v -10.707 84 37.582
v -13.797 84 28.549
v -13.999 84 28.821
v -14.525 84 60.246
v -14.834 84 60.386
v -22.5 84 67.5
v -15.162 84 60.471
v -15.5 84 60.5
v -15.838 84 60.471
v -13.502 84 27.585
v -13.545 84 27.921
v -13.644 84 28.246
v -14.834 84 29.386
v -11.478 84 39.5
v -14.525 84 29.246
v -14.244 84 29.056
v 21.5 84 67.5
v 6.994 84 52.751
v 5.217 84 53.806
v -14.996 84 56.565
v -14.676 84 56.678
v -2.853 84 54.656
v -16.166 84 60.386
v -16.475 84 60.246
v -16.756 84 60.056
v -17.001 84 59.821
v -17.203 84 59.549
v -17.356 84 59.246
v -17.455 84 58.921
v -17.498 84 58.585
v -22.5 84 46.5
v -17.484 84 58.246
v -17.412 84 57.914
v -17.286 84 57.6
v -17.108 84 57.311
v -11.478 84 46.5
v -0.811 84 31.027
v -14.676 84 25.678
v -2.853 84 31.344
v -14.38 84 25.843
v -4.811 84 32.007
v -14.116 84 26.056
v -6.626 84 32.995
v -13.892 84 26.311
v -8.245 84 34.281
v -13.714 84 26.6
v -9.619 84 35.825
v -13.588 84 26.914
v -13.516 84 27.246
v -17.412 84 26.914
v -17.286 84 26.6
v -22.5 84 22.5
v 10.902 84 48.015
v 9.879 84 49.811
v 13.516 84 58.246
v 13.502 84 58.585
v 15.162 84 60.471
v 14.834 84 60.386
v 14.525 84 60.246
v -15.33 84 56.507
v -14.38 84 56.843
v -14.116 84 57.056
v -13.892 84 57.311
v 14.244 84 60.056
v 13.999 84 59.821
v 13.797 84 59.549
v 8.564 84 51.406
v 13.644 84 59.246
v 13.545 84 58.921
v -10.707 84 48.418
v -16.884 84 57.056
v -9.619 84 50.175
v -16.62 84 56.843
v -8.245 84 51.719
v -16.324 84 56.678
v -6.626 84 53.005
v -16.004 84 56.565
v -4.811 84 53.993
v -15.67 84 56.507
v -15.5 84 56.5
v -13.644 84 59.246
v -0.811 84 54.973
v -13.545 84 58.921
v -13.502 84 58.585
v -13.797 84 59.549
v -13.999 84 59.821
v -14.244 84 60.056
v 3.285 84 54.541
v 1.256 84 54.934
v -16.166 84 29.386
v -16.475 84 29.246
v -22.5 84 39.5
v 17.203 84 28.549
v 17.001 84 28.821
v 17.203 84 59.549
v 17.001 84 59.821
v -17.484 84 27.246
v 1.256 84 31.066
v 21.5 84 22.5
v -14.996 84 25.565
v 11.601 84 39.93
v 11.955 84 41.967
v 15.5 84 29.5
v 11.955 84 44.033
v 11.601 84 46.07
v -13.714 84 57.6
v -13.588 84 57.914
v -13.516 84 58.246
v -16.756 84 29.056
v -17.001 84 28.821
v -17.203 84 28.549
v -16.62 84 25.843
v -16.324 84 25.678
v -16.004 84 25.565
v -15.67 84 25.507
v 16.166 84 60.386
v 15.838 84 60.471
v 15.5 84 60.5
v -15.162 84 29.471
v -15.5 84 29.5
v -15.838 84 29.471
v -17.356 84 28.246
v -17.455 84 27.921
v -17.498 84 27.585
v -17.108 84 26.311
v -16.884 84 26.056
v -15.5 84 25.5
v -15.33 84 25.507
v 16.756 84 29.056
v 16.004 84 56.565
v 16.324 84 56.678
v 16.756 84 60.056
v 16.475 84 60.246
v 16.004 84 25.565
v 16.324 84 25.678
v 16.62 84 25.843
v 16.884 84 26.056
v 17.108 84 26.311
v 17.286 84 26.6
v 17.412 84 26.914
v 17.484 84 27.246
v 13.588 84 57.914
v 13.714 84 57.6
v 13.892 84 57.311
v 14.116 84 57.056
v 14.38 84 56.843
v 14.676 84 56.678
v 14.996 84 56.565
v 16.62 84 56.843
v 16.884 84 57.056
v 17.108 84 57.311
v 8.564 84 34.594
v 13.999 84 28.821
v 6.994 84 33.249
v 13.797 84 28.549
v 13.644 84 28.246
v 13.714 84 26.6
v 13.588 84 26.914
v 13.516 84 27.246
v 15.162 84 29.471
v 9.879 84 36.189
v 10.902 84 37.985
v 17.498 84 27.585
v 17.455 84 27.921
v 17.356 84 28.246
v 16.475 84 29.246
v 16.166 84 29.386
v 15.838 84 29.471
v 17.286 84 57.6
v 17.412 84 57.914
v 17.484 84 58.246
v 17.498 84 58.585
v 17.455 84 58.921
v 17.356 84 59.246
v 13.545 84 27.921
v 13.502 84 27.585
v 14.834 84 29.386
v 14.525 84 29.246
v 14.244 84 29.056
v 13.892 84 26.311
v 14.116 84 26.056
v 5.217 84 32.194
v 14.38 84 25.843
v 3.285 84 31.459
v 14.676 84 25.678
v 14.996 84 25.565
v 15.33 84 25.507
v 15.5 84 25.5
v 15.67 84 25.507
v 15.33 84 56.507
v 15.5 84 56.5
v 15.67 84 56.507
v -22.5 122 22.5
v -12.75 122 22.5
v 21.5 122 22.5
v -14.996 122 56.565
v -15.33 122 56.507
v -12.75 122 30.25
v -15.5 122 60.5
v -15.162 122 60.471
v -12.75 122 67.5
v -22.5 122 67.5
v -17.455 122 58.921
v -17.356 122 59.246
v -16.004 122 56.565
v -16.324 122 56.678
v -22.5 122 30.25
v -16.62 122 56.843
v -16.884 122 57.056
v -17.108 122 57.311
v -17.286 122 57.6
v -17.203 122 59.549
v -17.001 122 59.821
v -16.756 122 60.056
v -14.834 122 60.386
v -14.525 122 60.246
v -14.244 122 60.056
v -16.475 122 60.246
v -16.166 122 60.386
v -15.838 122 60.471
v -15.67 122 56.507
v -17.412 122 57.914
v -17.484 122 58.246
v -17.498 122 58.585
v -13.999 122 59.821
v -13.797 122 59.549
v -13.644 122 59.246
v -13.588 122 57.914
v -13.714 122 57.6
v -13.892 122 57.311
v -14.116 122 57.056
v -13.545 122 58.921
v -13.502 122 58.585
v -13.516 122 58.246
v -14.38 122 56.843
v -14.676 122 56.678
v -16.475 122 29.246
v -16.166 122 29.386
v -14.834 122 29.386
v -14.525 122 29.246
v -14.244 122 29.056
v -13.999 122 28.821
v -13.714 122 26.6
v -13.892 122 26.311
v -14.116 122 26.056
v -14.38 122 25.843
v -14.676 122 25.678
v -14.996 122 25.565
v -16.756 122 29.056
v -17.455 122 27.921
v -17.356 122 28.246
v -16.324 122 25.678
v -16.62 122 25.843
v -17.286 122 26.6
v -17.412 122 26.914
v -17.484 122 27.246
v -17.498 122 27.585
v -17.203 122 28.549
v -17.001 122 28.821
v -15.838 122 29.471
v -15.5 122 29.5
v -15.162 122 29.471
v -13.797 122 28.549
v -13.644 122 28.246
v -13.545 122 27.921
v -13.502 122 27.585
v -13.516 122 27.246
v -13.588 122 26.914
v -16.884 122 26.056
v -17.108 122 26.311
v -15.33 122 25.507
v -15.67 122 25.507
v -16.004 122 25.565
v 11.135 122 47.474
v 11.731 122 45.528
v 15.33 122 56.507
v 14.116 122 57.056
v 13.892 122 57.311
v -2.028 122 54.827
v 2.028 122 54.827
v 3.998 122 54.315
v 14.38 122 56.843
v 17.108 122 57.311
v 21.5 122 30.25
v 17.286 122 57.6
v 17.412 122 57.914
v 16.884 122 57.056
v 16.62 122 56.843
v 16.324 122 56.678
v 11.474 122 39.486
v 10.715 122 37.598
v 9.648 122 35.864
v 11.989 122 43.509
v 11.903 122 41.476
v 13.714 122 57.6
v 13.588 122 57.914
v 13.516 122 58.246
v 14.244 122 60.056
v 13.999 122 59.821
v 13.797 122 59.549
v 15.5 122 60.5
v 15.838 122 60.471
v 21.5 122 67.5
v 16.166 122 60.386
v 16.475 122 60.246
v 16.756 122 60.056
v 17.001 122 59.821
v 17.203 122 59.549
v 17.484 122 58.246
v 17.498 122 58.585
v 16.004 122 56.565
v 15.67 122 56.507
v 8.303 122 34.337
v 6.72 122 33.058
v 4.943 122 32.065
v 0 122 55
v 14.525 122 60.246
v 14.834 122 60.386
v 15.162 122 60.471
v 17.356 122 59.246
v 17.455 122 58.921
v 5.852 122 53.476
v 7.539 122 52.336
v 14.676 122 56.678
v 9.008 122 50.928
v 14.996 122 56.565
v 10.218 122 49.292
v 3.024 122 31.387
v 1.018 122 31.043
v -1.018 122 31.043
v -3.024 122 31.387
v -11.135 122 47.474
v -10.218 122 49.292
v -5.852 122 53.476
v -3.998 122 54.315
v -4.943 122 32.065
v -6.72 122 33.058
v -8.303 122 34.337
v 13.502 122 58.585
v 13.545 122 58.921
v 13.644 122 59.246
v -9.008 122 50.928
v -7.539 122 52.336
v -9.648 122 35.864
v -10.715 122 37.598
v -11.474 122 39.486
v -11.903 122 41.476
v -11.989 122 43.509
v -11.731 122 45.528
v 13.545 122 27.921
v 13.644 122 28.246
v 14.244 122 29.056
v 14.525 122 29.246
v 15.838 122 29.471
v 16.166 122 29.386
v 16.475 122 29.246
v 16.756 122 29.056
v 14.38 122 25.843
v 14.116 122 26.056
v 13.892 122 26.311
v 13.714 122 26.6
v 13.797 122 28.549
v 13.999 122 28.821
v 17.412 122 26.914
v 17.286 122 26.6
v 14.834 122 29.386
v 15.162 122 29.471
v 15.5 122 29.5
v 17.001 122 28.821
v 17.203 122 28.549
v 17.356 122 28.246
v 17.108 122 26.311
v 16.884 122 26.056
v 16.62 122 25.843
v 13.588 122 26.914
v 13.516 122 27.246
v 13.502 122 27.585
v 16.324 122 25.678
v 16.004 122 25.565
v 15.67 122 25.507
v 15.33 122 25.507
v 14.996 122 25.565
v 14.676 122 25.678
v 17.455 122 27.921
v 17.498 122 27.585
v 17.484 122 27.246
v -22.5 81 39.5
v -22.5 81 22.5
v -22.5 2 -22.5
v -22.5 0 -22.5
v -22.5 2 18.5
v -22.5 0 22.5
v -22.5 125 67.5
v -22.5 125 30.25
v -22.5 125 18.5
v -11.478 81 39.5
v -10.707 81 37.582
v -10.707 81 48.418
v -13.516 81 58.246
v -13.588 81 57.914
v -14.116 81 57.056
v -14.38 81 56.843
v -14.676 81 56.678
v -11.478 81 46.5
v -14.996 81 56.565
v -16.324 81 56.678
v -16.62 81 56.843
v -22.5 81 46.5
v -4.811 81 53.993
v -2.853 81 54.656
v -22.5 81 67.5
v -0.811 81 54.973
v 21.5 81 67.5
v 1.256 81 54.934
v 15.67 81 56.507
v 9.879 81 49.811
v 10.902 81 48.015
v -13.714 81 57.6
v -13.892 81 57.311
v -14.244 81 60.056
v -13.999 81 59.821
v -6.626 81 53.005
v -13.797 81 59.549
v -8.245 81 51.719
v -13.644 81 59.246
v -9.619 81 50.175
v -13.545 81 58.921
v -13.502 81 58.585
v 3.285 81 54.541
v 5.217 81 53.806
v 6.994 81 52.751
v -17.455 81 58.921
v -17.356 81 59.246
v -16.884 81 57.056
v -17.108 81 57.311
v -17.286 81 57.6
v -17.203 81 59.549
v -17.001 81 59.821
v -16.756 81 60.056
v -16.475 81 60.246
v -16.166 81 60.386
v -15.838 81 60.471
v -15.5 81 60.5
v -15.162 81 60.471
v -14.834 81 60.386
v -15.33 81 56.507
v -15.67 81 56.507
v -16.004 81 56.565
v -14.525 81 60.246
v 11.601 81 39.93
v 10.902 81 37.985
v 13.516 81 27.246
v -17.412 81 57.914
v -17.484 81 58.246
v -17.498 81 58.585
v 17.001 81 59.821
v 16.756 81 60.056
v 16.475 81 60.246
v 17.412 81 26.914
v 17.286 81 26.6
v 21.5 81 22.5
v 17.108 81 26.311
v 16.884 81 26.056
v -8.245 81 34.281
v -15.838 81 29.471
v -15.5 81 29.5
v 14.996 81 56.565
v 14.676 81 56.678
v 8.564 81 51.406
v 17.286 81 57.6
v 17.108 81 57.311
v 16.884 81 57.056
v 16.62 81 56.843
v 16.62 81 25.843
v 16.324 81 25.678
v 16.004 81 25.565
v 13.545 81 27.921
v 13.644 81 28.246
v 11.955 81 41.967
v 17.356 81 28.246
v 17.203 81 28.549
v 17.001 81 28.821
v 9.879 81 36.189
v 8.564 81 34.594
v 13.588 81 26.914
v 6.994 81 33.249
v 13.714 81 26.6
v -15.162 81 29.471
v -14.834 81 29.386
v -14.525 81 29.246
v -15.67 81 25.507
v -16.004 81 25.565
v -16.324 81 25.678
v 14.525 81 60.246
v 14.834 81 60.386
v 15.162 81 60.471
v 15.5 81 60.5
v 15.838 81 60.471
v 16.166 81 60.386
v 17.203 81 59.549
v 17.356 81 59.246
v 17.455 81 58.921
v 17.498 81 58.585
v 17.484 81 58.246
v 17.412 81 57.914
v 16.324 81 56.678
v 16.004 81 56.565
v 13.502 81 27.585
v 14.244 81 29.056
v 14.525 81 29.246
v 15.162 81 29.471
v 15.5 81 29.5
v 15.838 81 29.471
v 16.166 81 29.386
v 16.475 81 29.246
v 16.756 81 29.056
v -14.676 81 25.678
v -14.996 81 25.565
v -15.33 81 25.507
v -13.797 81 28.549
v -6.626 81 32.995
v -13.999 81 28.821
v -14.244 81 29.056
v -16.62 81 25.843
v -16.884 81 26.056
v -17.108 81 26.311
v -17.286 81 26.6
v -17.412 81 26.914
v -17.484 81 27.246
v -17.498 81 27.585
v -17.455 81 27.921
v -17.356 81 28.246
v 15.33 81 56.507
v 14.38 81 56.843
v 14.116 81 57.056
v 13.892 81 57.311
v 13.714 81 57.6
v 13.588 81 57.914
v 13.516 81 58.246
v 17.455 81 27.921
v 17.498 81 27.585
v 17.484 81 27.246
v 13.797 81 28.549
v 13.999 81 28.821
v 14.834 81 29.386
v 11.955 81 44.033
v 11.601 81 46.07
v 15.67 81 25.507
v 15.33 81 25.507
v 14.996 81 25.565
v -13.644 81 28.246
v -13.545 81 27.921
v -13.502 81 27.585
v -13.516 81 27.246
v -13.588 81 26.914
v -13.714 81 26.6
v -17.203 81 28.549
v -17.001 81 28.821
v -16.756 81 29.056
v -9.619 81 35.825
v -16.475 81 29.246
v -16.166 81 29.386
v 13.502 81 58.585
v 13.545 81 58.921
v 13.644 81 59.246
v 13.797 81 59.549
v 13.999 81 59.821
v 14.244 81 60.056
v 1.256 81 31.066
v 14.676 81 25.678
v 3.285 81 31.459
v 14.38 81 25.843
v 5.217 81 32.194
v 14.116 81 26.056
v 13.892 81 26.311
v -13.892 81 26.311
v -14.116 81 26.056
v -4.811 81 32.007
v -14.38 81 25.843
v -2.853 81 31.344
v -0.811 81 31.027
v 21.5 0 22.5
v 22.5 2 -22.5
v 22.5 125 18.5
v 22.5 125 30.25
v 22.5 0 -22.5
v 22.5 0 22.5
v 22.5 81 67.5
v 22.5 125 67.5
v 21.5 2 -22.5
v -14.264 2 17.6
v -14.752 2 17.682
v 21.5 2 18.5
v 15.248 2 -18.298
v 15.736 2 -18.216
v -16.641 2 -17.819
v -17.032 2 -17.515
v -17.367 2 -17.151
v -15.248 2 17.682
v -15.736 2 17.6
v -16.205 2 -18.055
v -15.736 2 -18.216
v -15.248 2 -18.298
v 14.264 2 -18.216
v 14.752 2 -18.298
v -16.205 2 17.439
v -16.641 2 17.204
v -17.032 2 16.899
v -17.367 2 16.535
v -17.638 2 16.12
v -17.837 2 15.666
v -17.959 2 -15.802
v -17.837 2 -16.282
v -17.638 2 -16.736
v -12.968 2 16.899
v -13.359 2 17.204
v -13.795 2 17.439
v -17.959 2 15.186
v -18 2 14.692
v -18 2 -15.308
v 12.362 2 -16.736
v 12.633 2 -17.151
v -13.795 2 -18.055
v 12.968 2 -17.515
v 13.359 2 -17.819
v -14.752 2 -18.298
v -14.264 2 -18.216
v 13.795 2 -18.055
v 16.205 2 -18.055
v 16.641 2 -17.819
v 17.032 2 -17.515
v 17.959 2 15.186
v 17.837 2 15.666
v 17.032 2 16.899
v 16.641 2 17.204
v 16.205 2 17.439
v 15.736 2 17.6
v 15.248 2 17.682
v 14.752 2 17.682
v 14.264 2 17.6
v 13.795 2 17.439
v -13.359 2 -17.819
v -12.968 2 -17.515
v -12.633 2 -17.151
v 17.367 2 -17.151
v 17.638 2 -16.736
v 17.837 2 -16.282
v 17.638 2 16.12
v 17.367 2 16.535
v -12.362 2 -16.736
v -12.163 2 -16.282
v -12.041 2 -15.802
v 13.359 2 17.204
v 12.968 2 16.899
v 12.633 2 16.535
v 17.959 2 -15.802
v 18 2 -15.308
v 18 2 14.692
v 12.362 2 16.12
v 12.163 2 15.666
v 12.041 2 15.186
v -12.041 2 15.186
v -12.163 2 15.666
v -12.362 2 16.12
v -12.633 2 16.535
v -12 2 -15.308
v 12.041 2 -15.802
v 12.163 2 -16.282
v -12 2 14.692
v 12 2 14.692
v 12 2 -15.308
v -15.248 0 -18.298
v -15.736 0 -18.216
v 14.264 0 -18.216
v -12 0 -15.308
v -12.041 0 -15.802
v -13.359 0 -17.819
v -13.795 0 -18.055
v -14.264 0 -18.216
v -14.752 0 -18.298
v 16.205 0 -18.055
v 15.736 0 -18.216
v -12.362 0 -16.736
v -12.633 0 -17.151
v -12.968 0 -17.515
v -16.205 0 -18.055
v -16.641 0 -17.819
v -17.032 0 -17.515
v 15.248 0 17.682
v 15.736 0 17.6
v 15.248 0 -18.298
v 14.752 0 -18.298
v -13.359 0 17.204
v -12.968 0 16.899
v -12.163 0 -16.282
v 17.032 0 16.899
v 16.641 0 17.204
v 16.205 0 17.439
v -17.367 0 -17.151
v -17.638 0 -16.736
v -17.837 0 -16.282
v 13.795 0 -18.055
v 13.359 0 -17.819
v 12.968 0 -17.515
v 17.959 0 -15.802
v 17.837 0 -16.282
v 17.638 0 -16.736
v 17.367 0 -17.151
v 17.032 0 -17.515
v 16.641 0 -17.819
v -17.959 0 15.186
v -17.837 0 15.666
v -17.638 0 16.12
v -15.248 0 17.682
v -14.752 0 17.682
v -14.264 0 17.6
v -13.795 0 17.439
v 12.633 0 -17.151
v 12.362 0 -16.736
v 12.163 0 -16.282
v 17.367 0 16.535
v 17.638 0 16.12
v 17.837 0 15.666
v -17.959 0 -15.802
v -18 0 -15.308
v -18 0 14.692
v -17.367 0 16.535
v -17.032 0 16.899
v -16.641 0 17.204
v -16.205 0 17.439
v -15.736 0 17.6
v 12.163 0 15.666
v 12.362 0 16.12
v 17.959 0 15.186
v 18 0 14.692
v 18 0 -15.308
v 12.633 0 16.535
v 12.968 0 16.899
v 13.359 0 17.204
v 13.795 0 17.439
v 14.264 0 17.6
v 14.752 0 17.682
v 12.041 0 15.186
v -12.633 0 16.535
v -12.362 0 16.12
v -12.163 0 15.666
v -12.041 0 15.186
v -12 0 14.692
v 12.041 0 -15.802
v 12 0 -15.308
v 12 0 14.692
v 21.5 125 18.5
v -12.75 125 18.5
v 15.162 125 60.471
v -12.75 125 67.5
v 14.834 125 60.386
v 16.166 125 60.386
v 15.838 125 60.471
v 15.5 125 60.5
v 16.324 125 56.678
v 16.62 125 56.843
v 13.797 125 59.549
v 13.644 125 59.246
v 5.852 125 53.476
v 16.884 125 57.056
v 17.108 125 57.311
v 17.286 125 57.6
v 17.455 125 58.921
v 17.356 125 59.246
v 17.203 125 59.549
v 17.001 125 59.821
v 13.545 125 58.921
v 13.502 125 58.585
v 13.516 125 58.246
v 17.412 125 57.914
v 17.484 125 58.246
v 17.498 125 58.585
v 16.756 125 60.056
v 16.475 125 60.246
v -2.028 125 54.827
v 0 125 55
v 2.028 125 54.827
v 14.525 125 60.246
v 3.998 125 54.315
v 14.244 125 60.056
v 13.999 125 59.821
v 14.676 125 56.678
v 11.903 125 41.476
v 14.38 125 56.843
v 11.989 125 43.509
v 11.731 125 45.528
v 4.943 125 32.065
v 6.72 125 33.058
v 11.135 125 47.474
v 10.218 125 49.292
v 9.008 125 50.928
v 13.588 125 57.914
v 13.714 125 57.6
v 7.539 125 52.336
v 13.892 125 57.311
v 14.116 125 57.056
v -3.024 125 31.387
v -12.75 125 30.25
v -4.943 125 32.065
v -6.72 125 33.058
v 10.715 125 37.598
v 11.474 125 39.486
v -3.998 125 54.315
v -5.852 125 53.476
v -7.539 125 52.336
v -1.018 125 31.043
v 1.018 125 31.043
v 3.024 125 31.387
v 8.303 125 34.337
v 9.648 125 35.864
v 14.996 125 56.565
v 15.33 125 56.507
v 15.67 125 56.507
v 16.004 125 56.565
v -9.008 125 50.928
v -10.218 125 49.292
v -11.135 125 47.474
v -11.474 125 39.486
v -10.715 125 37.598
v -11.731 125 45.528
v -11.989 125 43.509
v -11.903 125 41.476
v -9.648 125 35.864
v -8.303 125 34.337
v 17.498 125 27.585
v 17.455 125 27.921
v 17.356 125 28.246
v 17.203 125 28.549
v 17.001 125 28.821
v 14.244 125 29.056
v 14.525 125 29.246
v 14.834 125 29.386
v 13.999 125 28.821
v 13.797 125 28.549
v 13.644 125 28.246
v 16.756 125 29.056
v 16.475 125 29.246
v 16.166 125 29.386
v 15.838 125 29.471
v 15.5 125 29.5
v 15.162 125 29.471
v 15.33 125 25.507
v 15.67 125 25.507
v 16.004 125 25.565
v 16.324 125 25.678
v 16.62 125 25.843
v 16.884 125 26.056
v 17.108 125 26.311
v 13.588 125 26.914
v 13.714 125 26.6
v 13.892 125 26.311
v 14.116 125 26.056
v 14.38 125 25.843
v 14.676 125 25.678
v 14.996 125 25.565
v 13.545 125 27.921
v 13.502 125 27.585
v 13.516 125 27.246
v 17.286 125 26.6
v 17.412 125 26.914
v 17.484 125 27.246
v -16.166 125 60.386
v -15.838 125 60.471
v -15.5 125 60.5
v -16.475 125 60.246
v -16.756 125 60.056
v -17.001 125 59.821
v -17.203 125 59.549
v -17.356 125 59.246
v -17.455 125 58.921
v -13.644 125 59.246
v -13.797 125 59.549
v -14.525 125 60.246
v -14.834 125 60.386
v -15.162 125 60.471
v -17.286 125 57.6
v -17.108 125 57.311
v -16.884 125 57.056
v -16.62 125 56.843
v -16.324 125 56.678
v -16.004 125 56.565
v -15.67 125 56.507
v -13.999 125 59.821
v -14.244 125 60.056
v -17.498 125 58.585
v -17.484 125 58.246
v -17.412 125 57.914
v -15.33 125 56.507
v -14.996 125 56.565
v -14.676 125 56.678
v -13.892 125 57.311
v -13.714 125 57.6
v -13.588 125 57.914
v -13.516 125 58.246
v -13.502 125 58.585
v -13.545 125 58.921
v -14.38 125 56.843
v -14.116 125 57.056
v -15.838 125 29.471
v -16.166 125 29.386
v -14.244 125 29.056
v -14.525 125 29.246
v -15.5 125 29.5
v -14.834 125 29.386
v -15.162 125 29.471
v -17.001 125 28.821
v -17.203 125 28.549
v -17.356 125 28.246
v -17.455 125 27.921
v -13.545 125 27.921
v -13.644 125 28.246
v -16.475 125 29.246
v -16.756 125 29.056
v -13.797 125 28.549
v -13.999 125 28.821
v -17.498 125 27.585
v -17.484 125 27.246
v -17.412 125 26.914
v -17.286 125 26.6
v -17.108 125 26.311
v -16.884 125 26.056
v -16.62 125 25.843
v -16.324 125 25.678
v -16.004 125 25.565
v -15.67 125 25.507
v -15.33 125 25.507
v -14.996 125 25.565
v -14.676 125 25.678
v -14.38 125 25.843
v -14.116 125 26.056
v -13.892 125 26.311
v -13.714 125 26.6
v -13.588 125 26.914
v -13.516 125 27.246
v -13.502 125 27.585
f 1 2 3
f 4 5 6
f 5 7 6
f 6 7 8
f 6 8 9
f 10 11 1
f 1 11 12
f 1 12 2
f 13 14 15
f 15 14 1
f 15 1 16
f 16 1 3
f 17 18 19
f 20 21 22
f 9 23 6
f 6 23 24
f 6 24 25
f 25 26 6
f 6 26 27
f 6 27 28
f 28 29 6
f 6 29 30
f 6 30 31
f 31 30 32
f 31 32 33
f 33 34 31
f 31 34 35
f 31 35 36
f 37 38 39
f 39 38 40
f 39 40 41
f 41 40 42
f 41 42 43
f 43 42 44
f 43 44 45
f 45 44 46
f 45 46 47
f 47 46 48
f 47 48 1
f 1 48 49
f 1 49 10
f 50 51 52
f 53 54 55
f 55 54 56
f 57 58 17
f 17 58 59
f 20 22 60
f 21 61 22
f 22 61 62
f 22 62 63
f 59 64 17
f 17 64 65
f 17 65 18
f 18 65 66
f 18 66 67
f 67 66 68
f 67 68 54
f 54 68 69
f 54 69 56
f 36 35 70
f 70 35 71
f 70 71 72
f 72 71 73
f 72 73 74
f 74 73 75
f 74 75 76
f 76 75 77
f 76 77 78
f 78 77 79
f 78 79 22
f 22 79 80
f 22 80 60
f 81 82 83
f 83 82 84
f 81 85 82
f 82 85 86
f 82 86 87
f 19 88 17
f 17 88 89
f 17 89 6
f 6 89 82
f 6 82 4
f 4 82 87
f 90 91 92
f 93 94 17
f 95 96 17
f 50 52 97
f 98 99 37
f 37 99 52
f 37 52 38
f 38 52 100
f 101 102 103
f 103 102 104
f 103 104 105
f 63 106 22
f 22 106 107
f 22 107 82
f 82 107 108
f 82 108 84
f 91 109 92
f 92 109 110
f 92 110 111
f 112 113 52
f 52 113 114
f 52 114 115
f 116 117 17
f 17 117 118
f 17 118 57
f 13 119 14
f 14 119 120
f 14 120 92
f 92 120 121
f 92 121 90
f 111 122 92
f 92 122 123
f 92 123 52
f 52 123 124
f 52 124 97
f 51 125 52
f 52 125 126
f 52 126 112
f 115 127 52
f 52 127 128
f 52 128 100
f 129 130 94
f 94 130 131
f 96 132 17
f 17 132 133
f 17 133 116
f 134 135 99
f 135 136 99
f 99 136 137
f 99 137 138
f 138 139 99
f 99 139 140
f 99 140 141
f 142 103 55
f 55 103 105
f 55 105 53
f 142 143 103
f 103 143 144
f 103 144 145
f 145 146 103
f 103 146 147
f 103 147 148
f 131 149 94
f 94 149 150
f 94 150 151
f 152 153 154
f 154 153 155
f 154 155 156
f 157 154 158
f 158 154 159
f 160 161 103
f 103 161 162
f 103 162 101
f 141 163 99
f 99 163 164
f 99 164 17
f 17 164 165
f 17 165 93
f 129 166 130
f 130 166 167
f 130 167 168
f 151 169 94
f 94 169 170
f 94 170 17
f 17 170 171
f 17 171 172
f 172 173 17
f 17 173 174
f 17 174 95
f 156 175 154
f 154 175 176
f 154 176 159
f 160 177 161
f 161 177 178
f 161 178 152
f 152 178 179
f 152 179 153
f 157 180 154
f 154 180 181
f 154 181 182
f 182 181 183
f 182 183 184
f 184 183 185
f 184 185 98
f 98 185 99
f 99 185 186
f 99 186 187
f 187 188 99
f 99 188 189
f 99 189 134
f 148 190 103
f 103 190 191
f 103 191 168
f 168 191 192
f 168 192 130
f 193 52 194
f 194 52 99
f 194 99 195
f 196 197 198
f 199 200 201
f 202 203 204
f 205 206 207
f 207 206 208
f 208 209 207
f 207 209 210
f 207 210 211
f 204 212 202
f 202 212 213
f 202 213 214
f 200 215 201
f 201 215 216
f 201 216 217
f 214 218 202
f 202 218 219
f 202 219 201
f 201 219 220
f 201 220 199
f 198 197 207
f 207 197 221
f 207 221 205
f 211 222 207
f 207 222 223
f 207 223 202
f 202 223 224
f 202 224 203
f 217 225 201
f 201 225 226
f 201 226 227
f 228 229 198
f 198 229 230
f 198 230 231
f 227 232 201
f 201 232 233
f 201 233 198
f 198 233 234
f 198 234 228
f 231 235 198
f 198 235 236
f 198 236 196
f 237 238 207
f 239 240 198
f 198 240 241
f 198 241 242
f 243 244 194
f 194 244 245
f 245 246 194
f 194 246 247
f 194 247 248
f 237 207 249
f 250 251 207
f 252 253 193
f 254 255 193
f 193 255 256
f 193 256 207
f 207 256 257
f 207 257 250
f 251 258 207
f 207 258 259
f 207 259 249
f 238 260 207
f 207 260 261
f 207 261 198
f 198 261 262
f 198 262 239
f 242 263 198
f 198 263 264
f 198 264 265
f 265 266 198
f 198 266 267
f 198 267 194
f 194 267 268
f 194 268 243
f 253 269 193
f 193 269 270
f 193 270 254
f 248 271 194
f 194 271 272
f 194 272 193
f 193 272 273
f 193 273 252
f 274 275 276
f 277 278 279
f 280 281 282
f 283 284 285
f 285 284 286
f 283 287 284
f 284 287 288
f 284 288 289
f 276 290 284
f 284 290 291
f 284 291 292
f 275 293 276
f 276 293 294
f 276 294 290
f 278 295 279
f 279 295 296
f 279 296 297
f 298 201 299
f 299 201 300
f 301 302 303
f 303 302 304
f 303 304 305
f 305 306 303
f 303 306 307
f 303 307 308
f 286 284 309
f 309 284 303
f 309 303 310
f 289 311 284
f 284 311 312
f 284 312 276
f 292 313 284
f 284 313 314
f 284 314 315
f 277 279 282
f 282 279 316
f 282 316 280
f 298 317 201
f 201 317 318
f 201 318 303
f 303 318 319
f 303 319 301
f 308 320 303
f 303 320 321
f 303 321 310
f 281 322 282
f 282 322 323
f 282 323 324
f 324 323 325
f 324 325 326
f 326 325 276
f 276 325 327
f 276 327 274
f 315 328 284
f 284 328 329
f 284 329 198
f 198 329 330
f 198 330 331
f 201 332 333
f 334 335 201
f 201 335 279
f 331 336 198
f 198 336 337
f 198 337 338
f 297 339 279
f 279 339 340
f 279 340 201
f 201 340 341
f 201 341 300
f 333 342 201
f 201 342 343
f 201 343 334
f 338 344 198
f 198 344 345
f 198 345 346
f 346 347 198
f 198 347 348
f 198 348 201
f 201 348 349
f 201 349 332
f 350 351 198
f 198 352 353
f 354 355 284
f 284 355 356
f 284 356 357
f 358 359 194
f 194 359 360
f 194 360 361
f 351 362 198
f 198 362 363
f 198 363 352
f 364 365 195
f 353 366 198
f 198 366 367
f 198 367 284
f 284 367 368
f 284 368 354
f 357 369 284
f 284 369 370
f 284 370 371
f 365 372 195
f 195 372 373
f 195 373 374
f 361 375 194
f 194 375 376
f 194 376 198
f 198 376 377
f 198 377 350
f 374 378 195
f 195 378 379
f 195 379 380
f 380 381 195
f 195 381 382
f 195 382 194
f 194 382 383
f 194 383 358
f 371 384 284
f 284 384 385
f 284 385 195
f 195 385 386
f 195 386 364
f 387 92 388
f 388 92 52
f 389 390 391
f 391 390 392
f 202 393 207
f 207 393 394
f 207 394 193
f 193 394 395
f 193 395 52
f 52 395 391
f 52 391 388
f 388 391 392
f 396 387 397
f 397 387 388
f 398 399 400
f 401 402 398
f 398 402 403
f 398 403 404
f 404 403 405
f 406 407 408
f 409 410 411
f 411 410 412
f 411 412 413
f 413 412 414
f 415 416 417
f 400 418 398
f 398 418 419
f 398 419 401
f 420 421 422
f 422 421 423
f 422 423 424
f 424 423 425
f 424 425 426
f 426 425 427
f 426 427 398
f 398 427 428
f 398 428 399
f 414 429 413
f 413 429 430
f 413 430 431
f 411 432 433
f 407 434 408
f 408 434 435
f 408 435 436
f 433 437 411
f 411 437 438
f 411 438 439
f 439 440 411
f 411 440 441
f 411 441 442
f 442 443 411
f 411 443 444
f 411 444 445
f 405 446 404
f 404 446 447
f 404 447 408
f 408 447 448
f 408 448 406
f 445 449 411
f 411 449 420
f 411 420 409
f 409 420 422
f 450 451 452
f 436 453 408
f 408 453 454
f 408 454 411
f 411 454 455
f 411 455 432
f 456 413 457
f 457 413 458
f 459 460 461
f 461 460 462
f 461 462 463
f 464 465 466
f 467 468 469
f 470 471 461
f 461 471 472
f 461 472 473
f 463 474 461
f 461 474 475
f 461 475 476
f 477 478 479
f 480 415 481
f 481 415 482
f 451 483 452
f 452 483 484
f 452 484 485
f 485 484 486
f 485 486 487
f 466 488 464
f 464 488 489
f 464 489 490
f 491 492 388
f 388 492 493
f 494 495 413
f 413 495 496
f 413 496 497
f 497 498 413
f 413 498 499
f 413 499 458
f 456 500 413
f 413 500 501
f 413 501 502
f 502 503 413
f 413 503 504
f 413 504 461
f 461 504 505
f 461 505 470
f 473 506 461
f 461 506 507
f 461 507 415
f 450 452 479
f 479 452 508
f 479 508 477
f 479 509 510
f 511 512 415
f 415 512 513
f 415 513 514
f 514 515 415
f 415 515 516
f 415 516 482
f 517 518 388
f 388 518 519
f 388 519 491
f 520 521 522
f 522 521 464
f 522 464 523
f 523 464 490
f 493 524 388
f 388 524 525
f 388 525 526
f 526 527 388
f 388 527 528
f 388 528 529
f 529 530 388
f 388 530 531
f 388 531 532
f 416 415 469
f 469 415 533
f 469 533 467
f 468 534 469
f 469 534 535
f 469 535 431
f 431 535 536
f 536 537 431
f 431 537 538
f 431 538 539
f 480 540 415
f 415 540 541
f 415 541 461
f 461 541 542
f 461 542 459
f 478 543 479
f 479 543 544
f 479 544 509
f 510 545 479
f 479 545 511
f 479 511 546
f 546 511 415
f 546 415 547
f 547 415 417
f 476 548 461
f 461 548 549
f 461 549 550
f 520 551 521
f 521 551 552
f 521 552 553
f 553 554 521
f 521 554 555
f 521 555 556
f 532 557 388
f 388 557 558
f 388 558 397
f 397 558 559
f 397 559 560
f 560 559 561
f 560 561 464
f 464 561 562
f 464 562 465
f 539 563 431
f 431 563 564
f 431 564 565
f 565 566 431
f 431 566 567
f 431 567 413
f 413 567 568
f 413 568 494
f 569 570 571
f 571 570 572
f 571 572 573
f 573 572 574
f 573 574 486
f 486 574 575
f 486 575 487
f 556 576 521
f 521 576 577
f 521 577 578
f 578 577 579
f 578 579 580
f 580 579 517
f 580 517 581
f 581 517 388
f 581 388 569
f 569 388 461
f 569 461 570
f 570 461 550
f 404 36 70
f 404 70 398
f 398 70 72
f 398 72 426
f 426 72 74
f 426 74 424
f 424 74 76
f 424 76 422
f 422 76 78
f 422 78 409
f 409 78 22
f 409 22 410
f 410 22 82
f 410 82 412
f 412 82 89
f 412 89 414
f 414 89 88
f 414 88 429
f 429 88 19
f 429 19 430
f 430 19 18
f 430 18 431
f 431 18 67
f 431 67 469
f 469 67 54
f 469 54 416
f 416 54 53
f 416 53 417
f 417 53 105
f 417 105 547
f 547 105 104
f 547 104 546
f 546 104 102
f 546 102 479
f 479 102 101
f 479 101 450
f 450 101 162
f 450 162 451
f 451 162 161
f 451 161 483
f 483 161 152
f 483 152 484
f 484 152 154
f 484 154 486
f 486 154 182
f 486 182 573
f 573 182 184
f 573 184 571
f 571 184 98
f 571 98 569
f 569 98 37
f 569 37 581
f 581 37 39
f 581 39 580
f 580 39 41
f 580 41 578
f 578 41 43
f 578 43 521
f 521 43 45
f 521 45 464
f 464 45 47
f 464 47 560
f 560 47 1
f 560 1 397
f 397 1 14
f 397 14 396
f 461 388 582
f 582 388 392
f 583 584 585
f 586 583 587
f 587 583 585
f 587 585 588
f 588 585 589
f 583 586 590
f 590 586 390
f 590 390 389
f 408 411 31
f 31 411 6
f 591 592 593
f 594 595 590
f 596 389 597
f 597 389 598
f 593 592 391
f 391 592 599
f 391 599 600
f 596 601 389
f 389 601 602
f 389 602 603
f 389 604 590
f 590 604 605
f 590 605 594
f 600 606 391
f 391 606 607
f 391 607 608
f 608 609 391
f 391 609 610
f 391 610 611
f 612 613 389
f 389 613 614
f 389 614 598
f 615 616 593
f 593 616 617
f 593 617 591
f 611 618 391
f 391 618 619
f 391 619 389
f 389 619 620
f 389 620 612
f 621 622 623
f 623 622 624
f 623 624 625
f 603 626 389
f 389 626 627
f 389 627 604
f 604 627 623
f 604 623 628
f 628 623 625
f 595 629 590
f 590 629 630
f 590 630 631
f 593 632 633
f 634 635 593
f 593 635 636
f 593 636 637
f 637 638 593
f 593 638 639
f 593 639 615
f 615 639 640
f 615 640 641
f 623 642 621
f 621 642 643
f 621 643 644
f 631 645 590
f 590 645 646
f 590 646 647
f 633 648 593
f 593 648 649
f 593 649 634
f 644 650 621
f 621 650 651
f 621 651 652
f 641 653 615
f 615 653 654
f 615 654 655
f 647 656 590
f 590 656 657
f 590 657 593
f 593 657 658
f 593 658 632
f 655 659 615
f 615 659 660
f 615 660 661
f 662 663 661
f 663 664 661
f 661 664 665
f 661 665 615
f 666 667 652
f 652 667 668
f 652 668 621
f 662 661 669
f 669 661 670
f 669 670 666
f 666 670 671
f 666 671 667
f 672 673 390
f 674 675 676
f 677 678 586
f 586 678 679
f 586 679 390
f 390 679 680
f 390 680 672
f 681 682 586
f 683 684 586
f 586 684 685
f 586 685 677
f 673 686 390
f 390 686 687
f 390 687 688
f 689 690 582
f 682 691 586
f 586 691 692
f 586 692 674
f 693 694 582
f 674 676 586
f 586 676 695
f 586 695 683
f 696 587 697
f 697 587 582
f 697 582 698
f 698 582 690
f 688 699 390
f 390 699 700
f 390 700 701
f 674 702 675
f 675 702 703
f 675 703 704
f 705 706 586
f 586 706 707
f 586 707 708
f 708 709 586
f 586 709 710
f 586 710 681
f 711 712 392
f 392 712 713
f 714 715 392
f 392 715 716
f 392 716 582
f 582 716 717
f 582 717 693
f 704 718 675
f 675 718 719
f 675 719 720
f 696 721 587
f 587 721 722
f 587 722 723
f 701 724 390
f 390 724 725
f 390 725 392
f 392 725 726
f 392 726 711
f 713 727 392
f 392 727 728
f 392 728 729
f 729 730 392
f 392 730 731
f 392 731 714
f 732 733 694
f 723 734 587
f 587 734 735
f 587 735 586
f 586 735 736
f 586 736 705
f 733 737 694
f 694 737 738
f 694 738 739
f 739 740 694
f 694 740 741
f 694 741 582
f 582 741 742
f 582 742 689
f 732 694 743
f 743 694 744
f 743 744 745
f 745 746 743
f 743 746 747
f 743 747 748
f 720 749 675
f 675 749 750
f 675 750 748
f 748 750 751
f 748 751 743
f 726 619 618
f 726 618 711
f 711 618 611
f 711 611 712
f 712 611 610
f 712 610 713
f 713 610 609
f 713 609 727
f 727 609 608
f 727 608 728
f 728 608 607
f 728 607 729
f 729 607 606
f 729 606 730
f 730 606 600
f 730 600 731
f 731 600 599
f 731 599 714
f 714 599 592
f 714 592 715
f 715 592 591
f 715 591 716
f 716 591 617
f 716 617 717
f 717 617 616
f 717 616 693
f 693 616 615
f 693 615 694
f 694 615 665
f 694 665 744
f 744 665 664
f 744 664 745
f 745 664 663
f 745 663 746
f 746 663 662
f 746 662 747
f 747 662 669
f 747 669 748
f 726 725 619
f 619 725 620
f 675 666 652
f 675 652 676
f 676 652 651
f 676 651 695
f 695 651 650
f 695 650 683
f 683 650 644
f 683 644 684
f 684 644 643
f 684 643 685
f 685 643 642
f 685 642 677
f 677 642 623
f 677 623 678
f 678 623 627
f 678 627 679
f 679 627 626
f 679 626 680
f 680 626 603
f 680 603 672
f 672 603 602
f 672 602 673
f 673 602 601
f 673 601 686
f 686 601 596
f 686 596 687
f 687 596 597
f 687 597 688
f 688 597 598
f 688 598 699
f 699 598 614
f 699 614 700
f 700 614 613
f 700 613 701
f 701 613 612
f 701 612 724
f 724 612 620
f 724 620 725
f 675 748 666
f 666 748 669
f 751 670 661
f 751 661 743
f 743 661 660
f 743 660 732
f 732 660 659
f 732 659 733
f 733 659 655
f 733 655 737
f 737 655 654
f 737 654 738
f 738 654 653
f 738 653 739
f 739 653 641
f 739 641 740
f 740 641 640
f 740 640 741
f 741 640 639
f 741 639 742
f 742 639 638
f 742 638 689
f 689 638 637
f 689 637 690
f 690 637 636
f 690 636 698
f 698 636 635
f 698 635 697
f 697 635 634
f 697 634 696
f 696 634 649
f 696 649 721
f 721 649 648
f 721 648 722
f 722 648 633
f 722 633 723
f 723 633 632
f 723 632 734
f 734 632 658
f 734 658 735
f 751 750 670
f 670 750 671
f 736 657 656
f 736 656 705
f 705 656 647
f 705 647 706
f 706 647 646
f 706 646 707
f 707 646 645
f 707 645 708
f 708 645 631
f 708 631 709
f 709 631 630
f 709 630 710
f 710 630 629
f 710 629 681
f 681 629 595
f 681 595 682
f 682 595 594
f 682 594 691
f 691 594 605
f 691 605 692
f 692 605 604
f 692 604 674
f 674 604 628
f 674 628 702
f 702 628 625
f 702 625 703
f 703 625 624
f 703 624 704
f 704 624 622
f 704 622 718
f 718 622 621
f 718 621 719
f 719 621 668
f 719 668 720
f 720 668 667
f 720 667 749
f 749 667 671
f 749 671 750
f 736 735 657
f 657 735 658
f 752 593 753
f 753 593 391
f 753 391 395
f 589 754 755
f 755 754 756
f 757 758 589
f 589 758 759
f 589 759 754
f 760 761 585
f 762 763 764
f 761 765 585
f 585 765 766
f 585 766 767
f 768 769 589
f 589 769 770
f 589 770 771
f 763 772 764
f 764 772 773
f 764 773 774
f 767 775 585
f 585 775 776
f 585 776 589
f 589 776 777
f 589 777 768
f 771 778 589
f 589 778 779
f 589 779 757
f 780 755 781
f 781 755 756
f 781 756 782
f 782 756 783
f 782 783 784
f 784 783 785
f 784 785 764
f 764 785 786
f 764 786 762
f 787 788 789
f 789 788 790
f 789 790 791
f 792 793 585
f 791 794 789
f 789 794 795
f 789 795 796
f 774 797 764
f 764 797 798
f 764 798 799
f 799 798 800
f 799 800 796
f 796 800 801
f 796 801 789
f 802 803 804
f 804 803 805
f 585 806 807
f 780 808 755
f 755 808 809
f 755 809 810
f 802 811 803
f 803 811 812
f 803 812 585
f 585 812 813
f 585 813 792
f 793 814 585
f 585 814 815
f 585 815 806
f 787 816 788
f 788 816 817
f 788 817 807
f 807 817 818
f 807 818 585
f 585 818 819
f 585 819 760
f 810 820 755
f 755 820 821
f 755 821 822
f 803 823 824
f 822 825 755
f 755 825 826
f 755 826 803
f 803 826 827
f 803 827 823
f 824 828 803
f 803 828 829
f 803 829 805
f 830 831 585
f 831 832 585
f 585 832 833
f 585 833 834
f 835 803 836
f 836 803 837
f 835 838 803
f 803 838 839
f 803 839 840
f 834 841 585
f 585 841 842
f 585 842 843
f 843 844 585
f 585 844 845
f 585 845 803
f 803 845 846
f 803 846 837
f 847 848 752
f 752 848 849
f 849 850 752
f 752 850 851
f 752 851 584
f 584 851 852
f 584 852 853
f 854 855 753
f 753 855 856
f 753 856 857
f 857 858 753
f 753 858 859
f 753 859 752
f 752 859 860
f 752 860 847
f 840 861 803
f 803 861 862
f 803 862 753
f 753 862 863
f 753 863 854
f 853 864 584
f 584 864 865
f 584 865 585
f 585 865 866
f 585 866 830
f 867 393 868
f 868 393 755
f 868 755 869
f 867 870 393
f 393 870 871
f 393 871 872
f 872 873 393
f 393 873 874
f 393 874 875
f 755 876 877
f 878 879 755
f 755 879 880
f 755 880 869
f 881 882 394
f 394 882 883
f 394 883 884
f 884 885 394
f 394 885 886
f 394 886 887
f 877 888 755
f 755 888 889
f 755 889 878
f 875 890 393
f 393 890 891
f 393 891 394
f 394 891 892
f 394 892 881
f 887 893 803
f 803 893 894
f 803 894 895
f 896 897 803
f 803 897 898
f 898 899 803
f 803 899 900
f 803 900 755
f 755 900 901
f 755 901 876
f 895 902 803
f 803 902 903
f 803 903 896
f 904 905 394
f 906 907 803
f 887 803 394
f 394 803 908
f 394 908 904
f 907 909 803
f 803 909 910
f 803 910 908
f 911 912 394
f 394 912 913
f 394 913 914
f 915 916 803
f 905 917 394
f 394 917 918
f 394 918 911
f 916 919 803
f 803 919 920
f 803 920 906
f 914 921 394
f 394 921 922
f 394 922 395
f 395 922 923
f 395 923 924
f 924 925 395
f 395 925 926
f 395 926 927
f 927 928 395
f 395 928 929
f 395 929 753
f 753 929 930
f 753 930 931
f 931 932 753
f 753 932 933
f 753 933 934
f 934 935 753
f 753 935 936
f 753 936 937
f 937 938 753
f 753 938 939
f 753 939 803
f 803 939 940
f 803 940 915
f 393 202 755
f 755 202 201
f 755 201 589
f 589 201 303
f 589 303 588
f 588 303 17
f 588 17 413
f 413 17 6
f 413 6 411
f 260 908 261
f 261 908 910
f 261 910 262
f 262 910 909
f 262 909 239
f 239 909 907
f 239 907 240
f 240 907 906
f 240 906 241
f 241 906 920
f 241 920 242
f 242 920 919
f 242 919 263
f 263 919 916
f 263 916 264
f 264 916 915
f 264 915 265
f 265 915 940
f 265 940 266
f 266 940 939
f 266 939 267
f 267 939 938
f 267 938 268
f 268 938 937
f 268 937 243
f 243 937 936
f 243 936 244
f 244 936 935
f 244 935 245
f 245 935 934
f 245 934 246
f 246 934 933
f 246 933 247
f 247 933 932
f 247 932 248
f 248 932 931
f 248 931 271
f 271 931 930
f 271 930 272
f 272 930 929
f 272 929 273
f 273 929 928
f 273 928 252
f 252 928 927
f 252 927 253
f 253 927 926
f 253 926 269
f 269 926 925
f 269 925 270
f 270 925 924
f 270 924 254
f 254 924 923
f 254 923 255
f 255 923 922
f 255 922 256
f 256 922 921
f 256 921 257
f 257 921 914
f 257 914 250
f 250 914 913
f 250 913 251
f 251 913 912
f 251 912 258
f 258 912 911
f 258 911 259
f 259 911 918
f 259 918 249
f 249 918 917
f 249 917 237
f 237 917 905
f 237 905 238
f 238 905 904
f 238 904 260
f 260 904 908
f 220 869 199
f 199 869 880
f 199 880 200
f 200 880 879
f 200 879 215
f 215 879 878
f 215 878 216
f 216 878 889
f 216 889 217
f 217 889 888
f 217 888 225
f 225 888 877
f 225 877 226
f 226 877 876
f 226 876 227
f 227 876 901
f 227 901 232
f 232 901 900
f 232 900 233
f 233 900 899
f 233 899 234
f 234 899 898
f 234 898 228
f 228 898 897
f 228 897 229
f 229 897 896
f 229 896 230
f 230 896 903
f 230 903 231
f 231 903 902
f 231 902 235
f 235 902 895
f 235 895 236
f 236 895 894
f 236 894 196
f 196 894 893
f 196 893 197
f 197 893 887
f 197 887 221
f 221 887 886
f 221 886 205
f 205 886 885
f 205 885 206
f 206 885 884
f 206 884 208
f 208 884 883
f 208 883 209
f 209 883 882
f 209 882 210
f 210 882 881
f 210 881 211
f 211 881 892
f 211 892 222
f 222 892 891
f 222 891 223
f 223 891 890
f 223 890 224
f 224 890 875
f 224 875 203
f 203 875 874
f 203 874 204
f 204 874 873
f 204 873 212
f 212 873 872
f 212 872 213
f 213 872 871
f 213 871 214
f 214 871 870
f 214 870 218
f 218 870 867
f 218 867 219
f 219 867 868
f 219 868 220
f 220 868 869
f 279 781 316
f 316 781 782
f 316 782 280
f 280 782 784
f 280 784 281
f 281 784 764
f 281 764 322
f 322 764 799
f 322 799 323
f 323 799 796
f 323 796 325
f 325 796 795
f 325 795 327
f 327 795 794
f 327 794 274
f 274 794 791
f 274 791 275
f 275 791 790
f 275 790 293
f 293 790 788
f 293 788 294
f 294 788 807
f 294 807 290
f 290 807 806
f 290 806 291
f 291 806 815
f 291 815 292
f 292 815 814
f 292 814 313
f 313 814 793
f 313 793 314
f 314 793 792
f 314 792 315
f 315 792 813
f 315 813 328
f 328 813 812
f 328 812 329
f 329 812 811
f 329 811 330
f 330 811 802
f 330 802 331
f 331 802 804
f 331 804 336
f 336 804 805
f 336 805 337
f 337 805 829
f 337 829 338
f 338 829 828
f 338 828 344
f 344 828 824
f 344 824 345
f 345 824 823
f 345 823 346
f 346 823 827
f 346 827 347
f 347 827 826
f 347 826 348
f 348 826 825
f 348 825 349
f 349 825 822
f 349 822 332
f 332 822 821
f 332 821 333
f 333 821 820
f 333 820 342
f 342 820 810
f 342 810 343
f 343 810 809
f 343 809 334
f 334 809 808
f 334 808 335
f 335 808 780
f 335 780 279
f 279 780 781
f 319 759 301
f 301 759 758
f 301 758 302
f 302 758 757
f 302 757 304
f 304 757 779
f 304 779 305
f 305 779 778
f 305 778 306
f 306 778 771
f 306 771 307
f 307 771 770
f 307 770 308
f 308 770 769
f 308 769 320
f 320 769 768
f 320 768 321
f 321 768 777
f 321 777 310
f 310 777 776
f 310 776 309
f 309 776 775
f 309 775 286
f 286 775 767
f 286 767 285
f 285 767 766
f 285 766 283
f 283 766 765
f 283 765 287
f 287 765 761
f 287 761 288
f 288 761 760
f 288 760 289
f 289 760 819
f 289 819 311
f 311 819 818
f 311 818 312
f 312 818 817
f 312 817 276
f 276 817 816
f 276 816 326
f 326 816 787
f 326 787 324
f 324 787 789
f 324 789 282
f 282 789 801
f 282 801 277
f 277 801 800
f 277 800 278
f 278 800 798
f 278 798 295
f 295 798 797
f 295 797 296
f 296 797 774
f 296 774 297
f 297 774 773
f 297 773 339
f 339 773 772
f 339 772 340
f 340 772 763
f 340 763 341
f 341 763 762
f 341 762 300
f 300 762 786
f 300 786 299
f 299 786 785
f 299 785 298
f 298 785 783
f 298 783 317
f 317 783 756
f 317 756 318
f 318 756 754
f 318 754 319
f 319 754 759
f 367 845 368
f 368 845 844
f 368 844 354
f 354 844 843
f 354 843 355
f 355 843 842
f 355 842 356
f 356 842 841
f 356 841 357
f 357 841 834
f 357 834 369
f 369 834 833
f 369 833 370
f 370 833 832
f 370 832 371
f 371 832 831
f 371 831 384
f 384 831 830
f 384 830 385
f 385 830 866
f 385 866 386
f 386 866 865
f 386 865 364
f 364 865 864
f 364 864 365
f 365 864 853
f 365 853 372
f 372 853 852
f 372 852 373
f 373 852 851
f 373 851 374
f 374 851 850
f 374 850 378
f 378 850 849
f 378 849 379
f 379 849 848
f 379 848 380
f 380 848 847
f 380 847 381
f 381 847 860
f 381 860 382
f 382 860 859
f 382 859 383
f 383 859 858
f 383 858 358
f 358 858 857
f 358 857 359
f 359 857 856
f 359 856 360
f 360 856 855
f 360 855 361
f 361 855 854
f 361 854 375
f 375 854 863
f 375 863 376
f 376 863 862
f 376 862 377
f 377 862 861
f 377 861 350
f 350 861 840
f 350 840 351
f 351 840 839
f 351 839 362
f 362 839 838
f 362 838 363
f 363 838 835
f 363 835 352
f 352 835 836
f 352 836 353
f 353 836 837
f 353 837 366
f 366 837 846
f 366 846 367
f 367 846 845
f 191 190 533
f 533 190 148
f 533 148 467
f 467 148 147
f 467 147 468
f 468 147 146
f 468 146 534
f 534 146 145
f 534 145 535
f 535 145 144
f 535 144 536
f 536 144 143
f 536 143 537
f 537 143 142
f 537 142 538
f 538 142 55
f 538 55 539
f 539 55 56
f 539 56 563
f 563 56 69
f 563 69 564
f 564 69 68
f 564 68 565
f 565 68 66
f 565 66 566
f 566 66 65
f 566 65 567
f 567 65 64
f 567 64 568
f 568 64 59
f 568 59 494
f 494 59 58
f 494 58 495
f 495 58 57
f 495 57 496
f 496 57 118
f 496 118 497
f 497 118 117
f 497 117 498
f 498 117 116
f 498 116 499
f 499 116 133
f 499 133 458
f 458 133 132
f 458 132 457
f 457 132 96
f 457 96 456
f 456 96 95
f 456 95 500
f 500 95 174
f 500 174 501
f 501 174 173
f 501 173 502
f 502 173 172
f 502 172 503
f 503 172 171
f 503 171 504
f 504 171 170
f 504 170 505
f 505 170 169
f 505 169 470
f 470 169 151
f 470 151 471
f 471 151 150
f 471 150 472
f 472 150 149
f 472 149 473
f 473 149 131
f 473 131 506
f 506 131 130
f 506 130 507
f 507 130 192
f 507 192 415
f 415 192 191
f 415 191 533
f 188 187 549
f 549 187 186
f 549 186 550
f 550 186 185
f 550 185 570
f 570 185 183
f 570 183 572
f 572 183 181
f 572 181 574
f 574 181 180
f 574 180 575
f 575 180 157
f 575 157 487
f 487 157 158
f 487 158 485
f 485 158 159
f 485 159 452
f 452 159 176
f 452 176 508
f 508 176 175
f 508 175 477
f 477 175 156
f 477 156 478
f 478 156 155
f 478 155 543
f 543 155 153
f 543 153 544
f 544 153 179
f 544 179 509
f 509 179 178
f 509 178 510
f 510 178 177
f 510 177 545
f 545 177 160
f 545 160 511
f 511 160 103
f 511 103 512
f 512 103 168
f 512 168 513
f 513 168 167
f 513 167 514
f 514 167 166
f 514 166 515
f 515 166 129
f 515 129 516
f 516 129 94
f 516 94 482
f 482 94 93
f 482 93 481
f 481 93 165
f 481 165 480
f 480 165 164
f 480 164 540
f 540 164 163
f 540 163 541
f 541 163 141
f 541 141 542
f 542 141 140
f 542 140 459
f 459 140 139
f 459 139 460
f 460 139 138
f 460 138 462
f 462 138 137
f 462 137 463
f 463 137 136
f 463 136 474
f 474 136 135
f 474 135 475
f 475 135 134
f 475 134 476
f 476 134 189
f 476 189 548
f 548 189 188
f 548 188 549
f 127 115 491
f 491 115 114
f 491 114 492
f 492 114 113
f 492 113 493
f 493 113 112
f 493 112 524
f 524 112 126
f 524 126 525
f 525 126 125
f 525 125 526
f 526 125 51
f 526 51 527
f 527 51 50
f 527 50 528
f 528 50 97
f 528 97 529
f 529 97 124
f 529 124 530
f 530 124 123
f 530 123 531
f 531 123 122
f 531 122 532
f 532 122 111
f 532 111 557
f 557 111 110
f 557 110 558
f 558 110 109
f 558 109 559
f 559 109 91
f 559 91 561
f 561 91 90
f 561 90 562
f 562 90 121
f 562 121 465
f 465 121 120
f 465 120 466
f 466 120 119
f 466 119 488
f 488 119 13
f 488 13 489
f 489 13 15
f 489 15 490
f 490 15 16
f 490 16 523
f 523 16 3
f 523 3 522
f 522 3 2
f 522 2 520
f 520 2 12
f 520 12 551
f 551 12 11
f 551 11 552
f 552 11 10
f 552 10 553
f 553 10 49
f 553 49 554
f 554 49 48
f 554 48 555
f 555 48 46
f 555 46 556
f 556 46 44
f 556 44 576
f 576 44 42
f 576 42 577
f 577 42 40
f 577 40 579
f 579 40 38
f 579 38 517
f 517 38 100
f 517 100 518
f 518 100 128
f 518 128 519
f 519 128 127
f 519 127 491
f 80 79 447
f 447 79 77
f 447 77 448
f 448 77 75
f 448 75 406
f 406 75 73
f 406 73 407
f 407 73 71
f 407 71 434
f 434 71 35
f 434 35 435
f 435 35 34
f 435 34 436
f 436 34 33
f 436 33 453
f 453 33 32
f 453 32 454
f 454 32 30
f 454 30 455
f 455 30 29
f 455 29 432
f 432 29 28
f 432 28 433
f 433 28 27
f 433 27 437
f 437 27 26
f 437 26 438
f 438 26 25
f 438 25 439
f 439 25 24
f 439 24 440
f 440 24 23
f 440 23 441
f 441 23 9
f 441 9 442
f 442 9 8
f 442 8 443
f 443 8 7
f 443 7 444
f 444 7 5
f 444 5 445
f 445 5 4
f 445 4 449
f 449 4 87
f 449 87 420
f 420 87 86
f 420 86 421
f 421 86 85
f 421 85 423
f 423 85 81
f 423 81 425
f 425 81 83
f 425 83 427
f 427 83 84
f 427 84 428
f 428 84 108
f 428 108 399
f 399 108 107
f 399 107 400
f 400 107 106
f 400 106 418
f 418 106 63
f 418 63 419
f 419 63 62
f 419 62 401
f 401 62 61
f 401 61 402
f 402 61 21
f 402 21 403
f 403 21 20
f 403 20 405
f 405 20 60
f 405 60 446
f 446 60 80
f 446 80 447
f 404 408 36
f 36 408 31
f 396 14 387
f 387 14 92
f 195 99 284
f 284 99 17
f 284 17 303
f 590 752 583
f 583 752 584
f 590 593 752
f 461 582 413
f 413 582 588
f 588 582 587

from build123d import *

# Parameters (mm, degrees)
CROQUIS1_W              = 45
CROQUIS1_H              = 45
SALIENTE_EXTRUIR1_DEPTH = 2
CORTAR_EXTRUIR1_DEPTH   = 2
CROQUIS3_W              = 45
CROQUIS3_H              = 4
SALIENTE_EXTRUIR2_DEPTH = 120
CROQUIS4_W              = 45
CROQUIS4_H              = 4
SALIENTE_EXTRUIR3_DEPTH = 3
CROQUIS5_W              = 45
CROQUIS5_H              = 3
SALIENTE_EXTRUIR4_DEPTH = 45
CROQUIS6_R              = 12
CROQUIS6_R_2            = 2
CORTAR_EXTRUIR2_DEPTH   = 3
CROQUIS7_W              = 45
CROQUIS7_H              = 3
SALIENTE_EXTRUIR5_DEPTH = 45
CROQUIS8_R              = 12
CROQUIS8_R_2            = 2
CORTAR_EXTRUIR4_DEPTH   = 44
CROQUIS11_W             = 27.899668072
CROQUIS11_H             = 7
CORTAR_EXTRUIR5_DEPTH   = 45
SALIENTE_EXTRUIR6_DEPTH = 1
SALIENTE_EXTRUIR7_DEPTH = 1
SALIENTE_EXTRUIR8_DEPTH = 1


with BuildPart() as part:
    # Croquis1 → Saliente-Extruir1 (new body)
    with BuildSketch(Plane(origin=(0, 0, 0), x_dir=(1, 0, 0), z_dir=(0, 1, 0))):
        Rectangle(CROQUIS1_W, CROQUIS1_H)
    extrude(amount=SALIENTE_EXTRUIR1_DEPTH)

    # Croquis2 → Cortar-Extruir1 (cut)
    with BuildSketch(Plane(origin=(0, 2, 0), x_dir=(1, 0, 0), z_dir=(0, 1, 0))):
        with BuildLine():
            Line((-18, -14.692077551), (-18, 15.307922449))
            ThreePointArc((-18, 15.307922449), (-15, 18.307922449), (-12, 15.307922449))
            Line((-12, 15.307922449), (-12, -14.692077551))
            ThreePointArc((-12, -14.692077551), (-15, -17.692077551), (-18, -14.692077551))
        make_face()
        with BuildLine():
            Line((18, -14.692077551), (18, 15.307922449))
            ThreePointArc((18, 15.307922449), (15, 18.307922449), (12, 15.307922449))
            Line((12, 15.307922449), (12, -14.692077551))
            ThreePointArc((12, -14.692077551), (15, -17.692077551), (18, -14.692077551))
        make_face()
    extrude(amount=-CORTAR_EXTRUIR1_DEPTH, mode=Mode.SUBTRACT)

    # Croquis3 → Saliente-Extruir2 (add)
    with BuildSketch(Plane(origin=(0, 2, 0), x_dir=(1, 0, 0), z_dir=(0, 1, 0))):
        with Locations((0, -20.5)):
            Rectangle(CROQUIS3_W, CROQUIS3_H)
    extrude(amount=SALIENTE_EXTRUIR2_DEPTH)

    # Croquis4 → Saliente-Extruir3 (add)
    with BuildSketch(Plane(origin=(0, 122, 0), x_dir=(1, 0, 0), z_dir=(0, 1, 0))):
        with Locations((0, -20.5)):
            Rectangle(CROQUIS4_W, CROQUIS4_H)
    extrude(amount=SALIENTE_EXTRUIR3_DEPTH)

    # Croquis5 → Saliente-Extruir4 (add)
    with BuildSketch(Plane.XY.offset(22.5)):
        with Locations((0, 123.5)):
            Rectangle(CROQUIS5_W, CROQUIS5_H)
    extrude(amount=SALIENTE_EXTRUIR4_DEPTH)

    # Croquis6 → Cortar-Extruir2 (cut)
    with BuildSketch(Plane(origin=(0, 125, 0), x_dir=(1, 0, 0), z_dir=(0, 1, 0))):
        with Locations((0, -43)):
            Circle(CROQUIS6_R)
        with Locations((-15.5, -27.5)):
            Circle(CROQUIS6_R_2)
        with Locations((15.5, -27.5)):
            Circle(CROQUIS6_R_2)
        with Locations((15.5, -58.5)):
            Circle(CROQUIS6_R_2)
        with Locations((-15.5, -58.5)):
            Circle(CROQUIS6_R_2)
    extrude(amount=-CORTAR_EXTRUIR2_DEPTH, mode=Mode.SUBTRACT)

    # Croquis7 → Saliente-Extruir5 (add)
    with BuildSketch(Plane.XY.offset(22.5)):
        with Locations((0, 82.5)):
            Rectangle(CROQUIS7_W, CROQUIS7_H)
    extrude(amount=SALIENTE_EXTRUIR5_DEPTH)

    # Croquis8 → Cortar-Extruir4 (cut)
    with BuildSketch(Plane(origin=(0, 125, 0), x_dir=(1, 0, 0), z_dir=(0, 1, 0))):
        with Locations((0, -43)):
            Circle(CROQUIS8_R)
        with Locations((15.5, -58.5)):
            Circle(CROQUIS8_R_2)
        with Locations((15.5, -27.5)):
            Circle(CROQUIS8_R_2)
        with Locations((-15.5, -27.5)):
            Circle(CROQUIS8_R_2)
        with Locations((-15.5, -58.5)):
            Circle(CROQUIS8_R_2)
    extrude(amount=-CORTAR_EXTRUIR4_DEPTH, mode=Mode.SUBTRACT)

    # Croquis11 → Cortar-Extruir5 (cut)
    with BuildSketch(Plane(origin=(0, 84, 0), x_dir=(1, 0, 0), z_dir=(0, 1, 0))):
        with Locations((-22.5, -43)):
            Rectangle(CROQUIS11_W, CROQUIS11_H)
    extrude(amount=-CORTAR_EXTRUIR5_DEPTH, mode=Mode.SUBTRACT)

    # Croquis14 → Saliente-Extruir6 (add)
    with BuildSketch(Plane(origin=(22.5, 0, 0), x_dir=(0, 0, -1), z_dir=(1, 0, 0))):
        Polygon((-67.5, 122), (-67.5, 84), (-18.5, 84), (-18.5, 125), (-67.5, 125), align=None)
    extrude(amount=-SALIENTE_EXTRUIR6_DEPTH)

    # Croquis16 → Saliente-Extruir7 (add)
    with BuildSketch(Plane(origin=(22.5, 0, 0), x_dir=(0, 0, -1), z_dir=(1, 0, 0))):
        Polygon((-18.5, 125), (22.5, 2), (22.5, 0), (-22.5, 0), (-22.5, 125), align=None)
    extrude(amount=-SALIENTE_EXTRUIR7_DEPTH)

    # Croquis17 → Saliente-Extruir8 (add)
    with BuildSketch(Plane(origin=(22.5, 0, 0), x_dir=(0, 0, -1), z_dir=(1, 0, 0))):
        Polygon((-67.5, 81), (-22.5, 0), (-22.5, 84), (-67.5, 84), align=None)
    extrude(amount=-SALIENTE_EXTRUIR8_DEPTH)


solid = part.part
